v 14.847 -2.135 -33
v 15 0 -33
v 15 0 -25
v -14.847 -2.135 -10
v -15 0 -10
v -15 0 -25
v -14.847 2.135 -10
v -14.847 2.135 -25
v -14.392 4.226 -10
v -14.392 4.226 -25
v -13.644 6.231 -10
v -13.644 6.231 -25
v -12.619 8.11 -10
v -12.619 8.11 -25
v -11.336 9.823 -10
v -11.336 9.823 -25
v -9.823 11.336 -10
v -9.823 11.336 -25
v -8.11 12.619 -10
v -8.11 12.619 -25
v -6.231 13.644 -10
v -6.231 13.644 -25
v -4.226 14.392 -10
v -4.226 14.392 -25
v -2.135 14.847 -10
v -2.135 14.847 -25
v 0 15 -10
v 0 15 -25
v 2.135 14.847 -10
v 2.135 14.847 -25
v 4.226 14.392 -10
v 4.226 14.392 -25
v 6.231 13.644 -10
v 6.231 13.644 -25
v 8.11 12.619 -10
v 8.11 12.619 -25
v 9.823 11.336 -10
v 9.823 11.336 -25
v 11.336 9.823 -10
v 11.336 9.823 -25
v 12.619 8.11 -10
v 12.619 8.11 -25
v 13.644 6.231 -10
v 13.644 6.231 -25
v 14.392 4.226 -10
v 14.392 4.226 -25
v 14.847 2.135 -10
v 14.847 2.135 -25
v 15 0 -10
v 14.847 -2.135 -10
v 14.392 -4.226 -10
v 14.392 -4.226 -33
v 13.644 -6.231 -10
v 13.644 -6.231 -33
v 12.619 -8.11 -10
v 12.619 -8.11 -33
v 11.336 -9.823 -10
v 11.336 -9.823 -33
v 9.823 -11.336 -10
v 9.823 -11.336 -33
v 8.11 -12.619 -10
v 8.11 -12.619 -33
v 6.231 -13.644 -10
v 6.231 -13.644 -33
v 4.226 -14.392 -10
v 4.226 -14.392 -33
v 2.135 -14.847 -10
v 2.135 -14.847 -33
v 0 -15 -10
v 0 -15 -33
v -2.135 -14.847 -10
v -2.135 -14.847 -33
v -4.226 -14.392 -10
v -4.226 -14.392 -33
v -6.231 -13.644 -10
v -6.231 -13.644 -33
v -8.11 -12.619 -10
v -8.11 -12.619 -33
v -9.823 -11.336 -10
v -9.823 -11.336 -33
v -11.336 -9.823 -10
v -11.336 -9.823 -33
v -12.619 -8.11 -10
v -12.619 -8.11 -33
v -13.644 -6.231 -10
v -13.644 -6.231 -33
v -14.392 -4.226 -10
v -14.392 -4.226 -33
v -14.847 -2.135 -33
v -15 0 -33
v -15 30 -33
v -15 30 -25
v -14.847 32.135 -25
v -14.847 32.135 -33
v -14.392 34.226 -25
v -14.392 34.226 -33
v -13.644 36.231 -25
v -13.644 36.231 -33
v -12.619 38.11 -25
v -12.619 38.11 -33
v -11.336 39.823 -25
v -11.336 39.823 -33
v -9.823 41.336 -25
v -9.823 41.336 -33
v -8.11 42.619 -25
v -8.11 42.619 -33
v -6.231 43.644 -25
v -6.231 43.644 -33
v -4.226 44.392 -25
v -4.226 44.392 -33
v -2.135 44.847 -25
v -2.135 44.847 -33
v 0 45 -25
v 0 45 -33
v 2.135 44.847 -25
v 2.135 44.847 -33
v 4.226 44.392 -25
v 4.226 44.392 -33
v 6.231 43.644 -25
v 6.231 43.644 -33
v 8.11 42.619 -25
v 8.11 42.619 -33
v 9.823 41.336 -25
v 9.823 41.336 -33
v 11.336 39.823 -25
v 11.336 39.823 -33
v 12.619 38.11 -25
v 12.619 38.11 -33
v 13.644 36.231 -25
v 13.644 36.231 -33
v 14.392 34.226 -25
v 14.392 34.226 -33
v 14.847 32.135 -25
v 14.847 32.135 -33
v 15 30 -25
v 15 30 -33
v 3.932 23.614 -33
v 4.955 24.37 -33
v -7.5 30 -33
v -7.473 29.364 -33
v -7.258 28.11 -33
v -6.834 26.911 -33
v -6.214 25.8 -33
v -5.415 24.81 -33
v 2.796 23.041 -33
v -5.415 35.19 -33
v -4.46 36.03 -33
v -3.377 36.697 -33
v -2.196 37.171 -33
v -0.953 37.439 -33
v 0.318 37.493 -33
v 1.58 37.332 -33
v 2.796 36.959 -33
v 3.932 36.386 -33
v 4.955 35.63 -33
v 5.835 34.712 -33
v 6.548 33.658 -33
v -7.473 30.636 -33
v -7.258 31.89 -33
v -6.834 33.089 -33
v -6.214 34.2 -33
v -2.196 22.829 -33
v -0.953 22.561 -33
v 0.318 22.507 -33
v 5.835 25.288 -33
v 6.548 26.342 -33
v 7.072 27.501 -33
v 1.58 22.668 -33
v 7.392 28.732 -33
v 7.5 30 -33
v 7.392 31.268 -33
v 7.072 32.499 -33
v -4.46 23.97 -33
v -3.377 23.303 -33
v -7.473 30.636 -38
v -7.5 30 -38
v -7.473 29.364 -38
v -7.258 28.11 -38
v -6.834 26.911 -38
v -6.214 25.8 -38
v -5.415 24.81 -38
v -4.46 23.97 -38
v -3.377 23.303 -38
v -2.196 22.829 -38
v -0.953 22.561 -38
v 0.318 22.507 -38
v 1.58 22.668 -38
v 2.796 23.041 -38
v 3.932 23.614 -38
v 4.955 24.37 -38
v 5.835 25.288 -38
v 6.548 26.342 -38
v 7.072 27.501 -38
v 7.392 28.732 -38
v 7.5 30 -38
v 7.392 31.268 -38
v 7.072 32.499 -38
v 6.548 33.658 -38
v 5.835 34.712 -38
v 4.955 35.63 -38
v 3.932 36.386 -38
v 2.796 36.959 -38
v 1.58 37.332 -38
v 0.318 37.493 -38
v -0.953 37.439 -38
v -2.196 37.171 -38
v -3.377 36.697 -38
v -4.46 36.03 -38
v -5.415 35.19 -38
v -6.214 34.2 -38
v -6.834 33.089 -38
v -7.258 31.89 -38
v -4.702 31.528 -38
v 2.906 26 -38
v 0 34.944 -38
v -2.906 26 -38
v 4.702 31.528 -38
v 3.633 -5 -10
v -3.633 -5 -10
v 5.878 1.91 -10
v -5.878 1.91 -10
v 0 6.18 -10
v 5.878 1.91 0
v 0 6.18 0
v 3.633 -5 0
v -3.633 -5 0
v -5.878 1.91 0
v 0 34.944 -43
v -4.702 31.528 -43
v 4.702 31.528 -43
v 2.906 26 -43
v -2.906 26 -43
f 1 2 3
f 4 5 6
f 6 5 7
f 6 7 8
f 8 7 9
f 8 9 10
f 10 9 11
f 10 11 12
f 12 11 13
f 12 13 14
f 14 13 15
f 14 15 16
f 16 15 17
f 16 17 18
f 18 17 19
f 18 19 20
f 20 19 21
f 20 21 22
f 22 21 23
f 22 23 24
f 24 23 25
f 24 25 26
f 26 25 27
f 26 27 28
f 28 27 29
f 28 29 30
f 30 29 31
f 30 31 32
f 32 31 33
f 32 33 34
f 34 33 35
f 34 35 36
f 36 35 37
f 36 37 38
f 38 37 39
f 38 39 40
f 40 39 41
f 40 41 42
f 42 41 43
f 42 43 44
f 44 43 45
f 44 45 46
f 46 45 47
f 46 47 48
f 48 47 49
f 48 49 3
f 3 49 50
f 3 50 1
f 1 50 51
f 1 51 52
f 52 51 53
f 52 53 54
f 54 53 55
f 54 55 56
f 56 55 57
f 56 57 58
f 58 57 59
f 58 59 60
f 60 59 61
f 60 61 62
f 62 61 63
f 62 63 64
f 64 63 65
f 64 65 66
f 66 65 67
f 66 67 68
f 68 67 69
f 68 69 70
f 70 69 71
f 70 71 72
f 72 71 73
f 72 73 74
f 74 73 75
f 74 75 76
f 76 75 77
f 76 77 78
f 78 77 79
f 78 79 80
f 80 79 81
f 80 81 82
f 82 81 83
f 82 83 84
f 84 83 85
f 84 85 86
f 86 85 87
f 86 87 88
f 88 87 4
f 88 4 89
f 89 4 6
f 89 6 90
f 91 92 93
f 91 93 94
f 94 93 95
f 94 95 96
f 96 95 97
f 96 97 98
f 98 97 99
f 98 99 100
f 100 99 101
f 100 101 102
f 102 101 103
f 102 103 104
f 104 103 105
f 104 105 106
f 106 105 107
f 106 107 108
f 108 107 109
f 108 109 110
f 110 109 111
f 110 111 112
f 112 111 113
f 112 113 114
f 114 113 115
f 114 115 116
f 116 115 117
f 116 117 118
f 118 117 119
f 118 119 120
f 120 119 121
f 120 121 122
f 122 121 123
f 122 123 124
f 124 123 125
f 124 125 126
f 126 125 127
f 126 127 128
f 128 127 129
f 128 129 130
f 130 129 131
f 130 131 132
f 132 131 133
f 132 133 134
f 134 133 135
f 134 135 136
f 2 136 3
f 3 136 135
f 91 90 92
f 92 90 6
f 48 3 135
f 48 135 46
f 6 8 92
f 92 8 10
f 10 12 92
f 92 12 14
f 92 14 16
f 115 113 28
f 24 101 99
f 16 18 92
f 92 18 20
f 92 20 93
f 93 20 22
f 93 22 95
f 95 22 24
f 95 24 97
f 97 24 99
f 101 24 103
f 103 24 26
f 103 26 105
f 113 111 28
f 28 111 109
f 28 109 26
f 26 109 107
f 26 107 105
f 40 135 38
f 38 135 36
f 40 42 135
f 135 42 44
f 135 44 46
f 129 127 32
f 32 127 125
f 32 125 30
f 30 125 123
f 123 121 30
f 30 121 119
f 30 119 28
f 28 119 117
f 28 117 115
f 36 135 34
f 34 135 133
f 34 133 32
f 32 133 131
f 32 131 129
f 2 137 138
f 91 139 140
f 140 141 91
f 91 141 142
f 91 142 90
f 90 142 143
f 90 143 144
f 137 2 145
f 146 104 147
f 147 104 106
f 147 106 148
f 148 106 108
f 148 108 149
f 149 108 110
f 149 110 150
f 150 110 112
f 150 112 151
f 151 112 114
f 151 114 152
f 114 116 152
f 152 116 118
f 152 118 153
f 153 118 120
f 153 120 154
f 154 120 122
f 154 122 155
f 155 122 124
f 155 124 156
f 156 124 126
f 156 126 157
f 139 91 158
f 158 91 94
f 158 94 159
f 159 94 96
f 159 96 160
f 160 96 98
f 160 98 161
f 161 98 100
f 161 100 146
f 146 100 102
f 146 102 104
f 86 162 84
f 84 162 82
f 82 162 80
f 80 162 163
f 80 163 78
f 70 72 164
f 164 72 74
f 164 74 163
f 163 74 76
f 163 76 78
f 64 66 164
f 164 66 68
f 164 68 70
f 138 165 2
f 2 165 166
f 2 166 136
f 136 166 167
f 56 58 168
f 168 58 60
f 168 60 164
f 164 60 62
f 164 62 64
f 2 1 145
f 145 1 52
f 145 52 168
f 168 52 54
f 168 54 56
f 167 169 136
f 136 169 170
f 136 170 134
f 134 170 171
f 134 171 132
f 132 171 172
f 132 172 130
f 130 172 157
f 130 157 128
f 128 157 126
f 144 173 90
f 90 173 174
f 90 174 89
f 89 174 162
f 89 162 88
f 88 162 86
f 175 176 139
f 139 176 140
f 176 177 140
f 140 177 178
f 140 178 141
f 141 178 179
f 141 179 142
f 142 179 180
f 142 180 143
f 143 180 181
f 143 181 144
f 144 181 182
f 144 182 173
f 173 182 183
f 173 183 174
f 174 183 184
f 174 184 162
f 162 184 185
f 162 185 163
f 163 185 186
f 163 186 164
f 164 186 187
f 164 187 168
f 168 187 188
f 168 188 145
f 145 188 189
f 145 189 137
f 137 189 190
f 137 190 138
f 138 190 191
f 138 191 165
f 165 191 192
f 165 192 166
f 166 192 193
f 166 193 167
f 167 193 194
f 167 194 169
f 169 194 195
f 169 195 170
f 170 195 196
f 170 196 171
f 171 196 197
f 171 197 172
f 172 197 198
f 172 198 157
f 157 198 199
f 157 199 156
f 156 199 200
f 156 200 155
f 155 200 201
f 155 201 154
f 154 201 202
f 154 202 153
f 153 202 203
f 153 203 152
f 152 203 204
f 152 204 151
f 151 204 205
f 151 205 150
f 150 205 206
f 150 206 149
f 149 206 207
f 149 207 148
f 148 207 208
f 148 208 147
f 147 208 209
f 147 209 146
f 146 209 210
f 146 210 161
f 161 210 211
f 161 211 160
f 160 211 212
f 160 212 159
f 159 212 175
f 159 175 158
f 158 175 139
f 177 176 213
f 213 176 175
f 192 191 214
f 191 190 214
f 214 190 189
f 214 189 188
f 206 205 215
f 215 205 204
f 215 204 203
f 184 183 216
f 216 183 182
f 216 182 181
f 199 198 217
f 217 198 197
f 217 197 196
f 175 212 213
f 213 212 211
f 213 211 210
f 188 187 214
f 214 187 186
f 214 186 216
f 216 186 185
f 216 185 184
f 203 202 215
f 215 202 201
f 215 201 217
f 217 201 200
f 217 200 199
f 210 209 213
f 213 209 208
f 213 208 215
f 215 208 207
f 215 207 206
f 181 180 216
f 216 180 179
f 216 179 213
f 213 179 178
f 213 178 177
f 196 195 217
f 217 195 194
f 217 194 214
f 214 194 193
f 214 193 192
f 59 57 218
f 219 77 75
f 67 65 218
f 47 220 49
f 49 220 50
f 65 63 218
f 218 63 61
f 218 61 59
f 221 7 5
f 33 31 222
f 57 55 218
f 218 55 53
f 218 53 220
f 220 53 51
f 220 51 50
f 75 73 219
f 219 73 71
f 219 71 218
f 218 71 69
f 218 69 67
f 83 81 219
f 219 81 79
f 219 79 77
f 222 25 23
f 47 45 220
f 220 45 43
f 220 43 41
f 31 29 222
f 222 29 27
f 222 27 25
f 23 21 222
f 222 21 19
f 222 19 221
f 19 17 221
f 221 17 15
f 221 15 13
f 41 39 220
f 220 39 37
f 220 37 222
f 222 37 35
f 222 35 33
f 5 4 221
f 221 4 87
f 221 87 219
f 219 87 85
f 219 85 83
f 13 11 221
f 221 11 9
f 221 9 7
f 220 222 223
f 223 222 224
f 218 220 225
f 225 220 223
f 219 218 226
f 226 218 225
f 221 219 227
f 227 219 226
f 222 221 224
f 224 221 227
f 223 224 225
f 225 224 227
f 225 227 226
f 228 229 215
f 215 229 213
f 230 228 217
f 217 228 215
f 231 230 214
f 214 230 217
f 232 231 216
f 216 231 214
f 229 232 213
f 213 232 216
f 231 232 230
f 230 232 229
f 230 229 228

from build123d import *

# Parameters (mm, degrees)
SKETCH_5_R          = 15
EXTRUDE_5_DEPTH     = 25
SKETCH_6_R          = 10
SKETCH_6_R_2        = 15
EXTRUDE_6_DEPTH     = 8
SKETCH_8_R          = 7.5
EXTRUDE_7_DEPTH     = 5
SKETCH_16_R         = 15
CUT_EXTRUDE_1_DEPTH = 10
EXTRUDE_14_DEPTH    = 5


with BuildPart() as part:
    # 스케치5 → 보스-돌출5 (new body)
    with BuildSketch(Plane.XY):
        Circle(SKETCH_5_R)
    extrude(amount=-EXTRUDE_5_DEPTH)

    # 스케치6 → 보스-돌출6 (add)
    with BuildSketch(Plane(origin=(0, 0, -25), x_dir=(-1, 0, 0), z_dir=(0, 0, -1))):
        with BuildLine():
            ThreePointArc((-15, 0), (0, -15), (15, 0))
            Line((15, 0), (-15, 0))
        make_face()
        with BuildLine():
            Line((-15, 0), (15, 0))
            ThreePointArc((15, 0), (0, 15), (-15, 0))
        make_face()
        with BuildLine():
            ThreePointArc((-15, 0), (0, 15), (15, 0))
            Line((15, 0), (15, 30))
            Line((15, 30), (10, 30))
            ThreePointArc((10, 30), (0, 20), (-10, 30))
            Line((-10, 30), (-15, 30))
            Line((-15, 30), (-15, 0))
        make_face()
        with Locations((0, 30)):
            Circle(SKETCH_6_R)
        with BuildLine():
            Line((15, 30), (-15, 30))
            ThreePointArc((-15, 30), (0, 45), (15, 30))
        make_face()
        with Locations(Location((0, 0, 0), (0, 0, 180))):
            Circle(SKETCH_6_R_2)
    extrude(amount=EXTRUDE_6_DEPTH)

    # 스케치8 → 보스-돌출7 (add)
    with BuildSketch(Plane(origin=(0, 0, -33), x_dir=(-1, 0, 0), z_dir=(0, 0, -1))):
        with Locations((0, 30)):
            Circle(SKETCH_8_R)
    extrude(amount=EXTRUDE_7_DEPTH)

    # 스케치16 → 컷-돌출1 (cut)
    with BuildSketch(Plane.XY):
        Circle(SKETCH_16_R)
        Polygon((0, 6.180339887), (-5.877852523, 1.909830056), (-3.63271264, -5), (3.63271264, -5), (5.877852523, 1.909830056), align=None, mode=Mode.SUBTRACT)
    extrude(amount=-CUT_EXTRUDE_1_DEPTH, mode=Mode.SUBTRACT)

    # 스케치19 → 보스-돌출14 (add)
    with BuildSketch(Plane(origin=(0, 0, -38), x_dir=(-1, 0, 0), z_dir=(0, 0, -1))):
        Polygon((0, 34.94427191), (-4.702282018, 31.527864045), (-2.906170112, 26), (2.906170112, 26), (4.702282018, 31.527864045), align=None)
    extrude(amount=EXTRUDE_14_DEPTH)


solid = part.part
